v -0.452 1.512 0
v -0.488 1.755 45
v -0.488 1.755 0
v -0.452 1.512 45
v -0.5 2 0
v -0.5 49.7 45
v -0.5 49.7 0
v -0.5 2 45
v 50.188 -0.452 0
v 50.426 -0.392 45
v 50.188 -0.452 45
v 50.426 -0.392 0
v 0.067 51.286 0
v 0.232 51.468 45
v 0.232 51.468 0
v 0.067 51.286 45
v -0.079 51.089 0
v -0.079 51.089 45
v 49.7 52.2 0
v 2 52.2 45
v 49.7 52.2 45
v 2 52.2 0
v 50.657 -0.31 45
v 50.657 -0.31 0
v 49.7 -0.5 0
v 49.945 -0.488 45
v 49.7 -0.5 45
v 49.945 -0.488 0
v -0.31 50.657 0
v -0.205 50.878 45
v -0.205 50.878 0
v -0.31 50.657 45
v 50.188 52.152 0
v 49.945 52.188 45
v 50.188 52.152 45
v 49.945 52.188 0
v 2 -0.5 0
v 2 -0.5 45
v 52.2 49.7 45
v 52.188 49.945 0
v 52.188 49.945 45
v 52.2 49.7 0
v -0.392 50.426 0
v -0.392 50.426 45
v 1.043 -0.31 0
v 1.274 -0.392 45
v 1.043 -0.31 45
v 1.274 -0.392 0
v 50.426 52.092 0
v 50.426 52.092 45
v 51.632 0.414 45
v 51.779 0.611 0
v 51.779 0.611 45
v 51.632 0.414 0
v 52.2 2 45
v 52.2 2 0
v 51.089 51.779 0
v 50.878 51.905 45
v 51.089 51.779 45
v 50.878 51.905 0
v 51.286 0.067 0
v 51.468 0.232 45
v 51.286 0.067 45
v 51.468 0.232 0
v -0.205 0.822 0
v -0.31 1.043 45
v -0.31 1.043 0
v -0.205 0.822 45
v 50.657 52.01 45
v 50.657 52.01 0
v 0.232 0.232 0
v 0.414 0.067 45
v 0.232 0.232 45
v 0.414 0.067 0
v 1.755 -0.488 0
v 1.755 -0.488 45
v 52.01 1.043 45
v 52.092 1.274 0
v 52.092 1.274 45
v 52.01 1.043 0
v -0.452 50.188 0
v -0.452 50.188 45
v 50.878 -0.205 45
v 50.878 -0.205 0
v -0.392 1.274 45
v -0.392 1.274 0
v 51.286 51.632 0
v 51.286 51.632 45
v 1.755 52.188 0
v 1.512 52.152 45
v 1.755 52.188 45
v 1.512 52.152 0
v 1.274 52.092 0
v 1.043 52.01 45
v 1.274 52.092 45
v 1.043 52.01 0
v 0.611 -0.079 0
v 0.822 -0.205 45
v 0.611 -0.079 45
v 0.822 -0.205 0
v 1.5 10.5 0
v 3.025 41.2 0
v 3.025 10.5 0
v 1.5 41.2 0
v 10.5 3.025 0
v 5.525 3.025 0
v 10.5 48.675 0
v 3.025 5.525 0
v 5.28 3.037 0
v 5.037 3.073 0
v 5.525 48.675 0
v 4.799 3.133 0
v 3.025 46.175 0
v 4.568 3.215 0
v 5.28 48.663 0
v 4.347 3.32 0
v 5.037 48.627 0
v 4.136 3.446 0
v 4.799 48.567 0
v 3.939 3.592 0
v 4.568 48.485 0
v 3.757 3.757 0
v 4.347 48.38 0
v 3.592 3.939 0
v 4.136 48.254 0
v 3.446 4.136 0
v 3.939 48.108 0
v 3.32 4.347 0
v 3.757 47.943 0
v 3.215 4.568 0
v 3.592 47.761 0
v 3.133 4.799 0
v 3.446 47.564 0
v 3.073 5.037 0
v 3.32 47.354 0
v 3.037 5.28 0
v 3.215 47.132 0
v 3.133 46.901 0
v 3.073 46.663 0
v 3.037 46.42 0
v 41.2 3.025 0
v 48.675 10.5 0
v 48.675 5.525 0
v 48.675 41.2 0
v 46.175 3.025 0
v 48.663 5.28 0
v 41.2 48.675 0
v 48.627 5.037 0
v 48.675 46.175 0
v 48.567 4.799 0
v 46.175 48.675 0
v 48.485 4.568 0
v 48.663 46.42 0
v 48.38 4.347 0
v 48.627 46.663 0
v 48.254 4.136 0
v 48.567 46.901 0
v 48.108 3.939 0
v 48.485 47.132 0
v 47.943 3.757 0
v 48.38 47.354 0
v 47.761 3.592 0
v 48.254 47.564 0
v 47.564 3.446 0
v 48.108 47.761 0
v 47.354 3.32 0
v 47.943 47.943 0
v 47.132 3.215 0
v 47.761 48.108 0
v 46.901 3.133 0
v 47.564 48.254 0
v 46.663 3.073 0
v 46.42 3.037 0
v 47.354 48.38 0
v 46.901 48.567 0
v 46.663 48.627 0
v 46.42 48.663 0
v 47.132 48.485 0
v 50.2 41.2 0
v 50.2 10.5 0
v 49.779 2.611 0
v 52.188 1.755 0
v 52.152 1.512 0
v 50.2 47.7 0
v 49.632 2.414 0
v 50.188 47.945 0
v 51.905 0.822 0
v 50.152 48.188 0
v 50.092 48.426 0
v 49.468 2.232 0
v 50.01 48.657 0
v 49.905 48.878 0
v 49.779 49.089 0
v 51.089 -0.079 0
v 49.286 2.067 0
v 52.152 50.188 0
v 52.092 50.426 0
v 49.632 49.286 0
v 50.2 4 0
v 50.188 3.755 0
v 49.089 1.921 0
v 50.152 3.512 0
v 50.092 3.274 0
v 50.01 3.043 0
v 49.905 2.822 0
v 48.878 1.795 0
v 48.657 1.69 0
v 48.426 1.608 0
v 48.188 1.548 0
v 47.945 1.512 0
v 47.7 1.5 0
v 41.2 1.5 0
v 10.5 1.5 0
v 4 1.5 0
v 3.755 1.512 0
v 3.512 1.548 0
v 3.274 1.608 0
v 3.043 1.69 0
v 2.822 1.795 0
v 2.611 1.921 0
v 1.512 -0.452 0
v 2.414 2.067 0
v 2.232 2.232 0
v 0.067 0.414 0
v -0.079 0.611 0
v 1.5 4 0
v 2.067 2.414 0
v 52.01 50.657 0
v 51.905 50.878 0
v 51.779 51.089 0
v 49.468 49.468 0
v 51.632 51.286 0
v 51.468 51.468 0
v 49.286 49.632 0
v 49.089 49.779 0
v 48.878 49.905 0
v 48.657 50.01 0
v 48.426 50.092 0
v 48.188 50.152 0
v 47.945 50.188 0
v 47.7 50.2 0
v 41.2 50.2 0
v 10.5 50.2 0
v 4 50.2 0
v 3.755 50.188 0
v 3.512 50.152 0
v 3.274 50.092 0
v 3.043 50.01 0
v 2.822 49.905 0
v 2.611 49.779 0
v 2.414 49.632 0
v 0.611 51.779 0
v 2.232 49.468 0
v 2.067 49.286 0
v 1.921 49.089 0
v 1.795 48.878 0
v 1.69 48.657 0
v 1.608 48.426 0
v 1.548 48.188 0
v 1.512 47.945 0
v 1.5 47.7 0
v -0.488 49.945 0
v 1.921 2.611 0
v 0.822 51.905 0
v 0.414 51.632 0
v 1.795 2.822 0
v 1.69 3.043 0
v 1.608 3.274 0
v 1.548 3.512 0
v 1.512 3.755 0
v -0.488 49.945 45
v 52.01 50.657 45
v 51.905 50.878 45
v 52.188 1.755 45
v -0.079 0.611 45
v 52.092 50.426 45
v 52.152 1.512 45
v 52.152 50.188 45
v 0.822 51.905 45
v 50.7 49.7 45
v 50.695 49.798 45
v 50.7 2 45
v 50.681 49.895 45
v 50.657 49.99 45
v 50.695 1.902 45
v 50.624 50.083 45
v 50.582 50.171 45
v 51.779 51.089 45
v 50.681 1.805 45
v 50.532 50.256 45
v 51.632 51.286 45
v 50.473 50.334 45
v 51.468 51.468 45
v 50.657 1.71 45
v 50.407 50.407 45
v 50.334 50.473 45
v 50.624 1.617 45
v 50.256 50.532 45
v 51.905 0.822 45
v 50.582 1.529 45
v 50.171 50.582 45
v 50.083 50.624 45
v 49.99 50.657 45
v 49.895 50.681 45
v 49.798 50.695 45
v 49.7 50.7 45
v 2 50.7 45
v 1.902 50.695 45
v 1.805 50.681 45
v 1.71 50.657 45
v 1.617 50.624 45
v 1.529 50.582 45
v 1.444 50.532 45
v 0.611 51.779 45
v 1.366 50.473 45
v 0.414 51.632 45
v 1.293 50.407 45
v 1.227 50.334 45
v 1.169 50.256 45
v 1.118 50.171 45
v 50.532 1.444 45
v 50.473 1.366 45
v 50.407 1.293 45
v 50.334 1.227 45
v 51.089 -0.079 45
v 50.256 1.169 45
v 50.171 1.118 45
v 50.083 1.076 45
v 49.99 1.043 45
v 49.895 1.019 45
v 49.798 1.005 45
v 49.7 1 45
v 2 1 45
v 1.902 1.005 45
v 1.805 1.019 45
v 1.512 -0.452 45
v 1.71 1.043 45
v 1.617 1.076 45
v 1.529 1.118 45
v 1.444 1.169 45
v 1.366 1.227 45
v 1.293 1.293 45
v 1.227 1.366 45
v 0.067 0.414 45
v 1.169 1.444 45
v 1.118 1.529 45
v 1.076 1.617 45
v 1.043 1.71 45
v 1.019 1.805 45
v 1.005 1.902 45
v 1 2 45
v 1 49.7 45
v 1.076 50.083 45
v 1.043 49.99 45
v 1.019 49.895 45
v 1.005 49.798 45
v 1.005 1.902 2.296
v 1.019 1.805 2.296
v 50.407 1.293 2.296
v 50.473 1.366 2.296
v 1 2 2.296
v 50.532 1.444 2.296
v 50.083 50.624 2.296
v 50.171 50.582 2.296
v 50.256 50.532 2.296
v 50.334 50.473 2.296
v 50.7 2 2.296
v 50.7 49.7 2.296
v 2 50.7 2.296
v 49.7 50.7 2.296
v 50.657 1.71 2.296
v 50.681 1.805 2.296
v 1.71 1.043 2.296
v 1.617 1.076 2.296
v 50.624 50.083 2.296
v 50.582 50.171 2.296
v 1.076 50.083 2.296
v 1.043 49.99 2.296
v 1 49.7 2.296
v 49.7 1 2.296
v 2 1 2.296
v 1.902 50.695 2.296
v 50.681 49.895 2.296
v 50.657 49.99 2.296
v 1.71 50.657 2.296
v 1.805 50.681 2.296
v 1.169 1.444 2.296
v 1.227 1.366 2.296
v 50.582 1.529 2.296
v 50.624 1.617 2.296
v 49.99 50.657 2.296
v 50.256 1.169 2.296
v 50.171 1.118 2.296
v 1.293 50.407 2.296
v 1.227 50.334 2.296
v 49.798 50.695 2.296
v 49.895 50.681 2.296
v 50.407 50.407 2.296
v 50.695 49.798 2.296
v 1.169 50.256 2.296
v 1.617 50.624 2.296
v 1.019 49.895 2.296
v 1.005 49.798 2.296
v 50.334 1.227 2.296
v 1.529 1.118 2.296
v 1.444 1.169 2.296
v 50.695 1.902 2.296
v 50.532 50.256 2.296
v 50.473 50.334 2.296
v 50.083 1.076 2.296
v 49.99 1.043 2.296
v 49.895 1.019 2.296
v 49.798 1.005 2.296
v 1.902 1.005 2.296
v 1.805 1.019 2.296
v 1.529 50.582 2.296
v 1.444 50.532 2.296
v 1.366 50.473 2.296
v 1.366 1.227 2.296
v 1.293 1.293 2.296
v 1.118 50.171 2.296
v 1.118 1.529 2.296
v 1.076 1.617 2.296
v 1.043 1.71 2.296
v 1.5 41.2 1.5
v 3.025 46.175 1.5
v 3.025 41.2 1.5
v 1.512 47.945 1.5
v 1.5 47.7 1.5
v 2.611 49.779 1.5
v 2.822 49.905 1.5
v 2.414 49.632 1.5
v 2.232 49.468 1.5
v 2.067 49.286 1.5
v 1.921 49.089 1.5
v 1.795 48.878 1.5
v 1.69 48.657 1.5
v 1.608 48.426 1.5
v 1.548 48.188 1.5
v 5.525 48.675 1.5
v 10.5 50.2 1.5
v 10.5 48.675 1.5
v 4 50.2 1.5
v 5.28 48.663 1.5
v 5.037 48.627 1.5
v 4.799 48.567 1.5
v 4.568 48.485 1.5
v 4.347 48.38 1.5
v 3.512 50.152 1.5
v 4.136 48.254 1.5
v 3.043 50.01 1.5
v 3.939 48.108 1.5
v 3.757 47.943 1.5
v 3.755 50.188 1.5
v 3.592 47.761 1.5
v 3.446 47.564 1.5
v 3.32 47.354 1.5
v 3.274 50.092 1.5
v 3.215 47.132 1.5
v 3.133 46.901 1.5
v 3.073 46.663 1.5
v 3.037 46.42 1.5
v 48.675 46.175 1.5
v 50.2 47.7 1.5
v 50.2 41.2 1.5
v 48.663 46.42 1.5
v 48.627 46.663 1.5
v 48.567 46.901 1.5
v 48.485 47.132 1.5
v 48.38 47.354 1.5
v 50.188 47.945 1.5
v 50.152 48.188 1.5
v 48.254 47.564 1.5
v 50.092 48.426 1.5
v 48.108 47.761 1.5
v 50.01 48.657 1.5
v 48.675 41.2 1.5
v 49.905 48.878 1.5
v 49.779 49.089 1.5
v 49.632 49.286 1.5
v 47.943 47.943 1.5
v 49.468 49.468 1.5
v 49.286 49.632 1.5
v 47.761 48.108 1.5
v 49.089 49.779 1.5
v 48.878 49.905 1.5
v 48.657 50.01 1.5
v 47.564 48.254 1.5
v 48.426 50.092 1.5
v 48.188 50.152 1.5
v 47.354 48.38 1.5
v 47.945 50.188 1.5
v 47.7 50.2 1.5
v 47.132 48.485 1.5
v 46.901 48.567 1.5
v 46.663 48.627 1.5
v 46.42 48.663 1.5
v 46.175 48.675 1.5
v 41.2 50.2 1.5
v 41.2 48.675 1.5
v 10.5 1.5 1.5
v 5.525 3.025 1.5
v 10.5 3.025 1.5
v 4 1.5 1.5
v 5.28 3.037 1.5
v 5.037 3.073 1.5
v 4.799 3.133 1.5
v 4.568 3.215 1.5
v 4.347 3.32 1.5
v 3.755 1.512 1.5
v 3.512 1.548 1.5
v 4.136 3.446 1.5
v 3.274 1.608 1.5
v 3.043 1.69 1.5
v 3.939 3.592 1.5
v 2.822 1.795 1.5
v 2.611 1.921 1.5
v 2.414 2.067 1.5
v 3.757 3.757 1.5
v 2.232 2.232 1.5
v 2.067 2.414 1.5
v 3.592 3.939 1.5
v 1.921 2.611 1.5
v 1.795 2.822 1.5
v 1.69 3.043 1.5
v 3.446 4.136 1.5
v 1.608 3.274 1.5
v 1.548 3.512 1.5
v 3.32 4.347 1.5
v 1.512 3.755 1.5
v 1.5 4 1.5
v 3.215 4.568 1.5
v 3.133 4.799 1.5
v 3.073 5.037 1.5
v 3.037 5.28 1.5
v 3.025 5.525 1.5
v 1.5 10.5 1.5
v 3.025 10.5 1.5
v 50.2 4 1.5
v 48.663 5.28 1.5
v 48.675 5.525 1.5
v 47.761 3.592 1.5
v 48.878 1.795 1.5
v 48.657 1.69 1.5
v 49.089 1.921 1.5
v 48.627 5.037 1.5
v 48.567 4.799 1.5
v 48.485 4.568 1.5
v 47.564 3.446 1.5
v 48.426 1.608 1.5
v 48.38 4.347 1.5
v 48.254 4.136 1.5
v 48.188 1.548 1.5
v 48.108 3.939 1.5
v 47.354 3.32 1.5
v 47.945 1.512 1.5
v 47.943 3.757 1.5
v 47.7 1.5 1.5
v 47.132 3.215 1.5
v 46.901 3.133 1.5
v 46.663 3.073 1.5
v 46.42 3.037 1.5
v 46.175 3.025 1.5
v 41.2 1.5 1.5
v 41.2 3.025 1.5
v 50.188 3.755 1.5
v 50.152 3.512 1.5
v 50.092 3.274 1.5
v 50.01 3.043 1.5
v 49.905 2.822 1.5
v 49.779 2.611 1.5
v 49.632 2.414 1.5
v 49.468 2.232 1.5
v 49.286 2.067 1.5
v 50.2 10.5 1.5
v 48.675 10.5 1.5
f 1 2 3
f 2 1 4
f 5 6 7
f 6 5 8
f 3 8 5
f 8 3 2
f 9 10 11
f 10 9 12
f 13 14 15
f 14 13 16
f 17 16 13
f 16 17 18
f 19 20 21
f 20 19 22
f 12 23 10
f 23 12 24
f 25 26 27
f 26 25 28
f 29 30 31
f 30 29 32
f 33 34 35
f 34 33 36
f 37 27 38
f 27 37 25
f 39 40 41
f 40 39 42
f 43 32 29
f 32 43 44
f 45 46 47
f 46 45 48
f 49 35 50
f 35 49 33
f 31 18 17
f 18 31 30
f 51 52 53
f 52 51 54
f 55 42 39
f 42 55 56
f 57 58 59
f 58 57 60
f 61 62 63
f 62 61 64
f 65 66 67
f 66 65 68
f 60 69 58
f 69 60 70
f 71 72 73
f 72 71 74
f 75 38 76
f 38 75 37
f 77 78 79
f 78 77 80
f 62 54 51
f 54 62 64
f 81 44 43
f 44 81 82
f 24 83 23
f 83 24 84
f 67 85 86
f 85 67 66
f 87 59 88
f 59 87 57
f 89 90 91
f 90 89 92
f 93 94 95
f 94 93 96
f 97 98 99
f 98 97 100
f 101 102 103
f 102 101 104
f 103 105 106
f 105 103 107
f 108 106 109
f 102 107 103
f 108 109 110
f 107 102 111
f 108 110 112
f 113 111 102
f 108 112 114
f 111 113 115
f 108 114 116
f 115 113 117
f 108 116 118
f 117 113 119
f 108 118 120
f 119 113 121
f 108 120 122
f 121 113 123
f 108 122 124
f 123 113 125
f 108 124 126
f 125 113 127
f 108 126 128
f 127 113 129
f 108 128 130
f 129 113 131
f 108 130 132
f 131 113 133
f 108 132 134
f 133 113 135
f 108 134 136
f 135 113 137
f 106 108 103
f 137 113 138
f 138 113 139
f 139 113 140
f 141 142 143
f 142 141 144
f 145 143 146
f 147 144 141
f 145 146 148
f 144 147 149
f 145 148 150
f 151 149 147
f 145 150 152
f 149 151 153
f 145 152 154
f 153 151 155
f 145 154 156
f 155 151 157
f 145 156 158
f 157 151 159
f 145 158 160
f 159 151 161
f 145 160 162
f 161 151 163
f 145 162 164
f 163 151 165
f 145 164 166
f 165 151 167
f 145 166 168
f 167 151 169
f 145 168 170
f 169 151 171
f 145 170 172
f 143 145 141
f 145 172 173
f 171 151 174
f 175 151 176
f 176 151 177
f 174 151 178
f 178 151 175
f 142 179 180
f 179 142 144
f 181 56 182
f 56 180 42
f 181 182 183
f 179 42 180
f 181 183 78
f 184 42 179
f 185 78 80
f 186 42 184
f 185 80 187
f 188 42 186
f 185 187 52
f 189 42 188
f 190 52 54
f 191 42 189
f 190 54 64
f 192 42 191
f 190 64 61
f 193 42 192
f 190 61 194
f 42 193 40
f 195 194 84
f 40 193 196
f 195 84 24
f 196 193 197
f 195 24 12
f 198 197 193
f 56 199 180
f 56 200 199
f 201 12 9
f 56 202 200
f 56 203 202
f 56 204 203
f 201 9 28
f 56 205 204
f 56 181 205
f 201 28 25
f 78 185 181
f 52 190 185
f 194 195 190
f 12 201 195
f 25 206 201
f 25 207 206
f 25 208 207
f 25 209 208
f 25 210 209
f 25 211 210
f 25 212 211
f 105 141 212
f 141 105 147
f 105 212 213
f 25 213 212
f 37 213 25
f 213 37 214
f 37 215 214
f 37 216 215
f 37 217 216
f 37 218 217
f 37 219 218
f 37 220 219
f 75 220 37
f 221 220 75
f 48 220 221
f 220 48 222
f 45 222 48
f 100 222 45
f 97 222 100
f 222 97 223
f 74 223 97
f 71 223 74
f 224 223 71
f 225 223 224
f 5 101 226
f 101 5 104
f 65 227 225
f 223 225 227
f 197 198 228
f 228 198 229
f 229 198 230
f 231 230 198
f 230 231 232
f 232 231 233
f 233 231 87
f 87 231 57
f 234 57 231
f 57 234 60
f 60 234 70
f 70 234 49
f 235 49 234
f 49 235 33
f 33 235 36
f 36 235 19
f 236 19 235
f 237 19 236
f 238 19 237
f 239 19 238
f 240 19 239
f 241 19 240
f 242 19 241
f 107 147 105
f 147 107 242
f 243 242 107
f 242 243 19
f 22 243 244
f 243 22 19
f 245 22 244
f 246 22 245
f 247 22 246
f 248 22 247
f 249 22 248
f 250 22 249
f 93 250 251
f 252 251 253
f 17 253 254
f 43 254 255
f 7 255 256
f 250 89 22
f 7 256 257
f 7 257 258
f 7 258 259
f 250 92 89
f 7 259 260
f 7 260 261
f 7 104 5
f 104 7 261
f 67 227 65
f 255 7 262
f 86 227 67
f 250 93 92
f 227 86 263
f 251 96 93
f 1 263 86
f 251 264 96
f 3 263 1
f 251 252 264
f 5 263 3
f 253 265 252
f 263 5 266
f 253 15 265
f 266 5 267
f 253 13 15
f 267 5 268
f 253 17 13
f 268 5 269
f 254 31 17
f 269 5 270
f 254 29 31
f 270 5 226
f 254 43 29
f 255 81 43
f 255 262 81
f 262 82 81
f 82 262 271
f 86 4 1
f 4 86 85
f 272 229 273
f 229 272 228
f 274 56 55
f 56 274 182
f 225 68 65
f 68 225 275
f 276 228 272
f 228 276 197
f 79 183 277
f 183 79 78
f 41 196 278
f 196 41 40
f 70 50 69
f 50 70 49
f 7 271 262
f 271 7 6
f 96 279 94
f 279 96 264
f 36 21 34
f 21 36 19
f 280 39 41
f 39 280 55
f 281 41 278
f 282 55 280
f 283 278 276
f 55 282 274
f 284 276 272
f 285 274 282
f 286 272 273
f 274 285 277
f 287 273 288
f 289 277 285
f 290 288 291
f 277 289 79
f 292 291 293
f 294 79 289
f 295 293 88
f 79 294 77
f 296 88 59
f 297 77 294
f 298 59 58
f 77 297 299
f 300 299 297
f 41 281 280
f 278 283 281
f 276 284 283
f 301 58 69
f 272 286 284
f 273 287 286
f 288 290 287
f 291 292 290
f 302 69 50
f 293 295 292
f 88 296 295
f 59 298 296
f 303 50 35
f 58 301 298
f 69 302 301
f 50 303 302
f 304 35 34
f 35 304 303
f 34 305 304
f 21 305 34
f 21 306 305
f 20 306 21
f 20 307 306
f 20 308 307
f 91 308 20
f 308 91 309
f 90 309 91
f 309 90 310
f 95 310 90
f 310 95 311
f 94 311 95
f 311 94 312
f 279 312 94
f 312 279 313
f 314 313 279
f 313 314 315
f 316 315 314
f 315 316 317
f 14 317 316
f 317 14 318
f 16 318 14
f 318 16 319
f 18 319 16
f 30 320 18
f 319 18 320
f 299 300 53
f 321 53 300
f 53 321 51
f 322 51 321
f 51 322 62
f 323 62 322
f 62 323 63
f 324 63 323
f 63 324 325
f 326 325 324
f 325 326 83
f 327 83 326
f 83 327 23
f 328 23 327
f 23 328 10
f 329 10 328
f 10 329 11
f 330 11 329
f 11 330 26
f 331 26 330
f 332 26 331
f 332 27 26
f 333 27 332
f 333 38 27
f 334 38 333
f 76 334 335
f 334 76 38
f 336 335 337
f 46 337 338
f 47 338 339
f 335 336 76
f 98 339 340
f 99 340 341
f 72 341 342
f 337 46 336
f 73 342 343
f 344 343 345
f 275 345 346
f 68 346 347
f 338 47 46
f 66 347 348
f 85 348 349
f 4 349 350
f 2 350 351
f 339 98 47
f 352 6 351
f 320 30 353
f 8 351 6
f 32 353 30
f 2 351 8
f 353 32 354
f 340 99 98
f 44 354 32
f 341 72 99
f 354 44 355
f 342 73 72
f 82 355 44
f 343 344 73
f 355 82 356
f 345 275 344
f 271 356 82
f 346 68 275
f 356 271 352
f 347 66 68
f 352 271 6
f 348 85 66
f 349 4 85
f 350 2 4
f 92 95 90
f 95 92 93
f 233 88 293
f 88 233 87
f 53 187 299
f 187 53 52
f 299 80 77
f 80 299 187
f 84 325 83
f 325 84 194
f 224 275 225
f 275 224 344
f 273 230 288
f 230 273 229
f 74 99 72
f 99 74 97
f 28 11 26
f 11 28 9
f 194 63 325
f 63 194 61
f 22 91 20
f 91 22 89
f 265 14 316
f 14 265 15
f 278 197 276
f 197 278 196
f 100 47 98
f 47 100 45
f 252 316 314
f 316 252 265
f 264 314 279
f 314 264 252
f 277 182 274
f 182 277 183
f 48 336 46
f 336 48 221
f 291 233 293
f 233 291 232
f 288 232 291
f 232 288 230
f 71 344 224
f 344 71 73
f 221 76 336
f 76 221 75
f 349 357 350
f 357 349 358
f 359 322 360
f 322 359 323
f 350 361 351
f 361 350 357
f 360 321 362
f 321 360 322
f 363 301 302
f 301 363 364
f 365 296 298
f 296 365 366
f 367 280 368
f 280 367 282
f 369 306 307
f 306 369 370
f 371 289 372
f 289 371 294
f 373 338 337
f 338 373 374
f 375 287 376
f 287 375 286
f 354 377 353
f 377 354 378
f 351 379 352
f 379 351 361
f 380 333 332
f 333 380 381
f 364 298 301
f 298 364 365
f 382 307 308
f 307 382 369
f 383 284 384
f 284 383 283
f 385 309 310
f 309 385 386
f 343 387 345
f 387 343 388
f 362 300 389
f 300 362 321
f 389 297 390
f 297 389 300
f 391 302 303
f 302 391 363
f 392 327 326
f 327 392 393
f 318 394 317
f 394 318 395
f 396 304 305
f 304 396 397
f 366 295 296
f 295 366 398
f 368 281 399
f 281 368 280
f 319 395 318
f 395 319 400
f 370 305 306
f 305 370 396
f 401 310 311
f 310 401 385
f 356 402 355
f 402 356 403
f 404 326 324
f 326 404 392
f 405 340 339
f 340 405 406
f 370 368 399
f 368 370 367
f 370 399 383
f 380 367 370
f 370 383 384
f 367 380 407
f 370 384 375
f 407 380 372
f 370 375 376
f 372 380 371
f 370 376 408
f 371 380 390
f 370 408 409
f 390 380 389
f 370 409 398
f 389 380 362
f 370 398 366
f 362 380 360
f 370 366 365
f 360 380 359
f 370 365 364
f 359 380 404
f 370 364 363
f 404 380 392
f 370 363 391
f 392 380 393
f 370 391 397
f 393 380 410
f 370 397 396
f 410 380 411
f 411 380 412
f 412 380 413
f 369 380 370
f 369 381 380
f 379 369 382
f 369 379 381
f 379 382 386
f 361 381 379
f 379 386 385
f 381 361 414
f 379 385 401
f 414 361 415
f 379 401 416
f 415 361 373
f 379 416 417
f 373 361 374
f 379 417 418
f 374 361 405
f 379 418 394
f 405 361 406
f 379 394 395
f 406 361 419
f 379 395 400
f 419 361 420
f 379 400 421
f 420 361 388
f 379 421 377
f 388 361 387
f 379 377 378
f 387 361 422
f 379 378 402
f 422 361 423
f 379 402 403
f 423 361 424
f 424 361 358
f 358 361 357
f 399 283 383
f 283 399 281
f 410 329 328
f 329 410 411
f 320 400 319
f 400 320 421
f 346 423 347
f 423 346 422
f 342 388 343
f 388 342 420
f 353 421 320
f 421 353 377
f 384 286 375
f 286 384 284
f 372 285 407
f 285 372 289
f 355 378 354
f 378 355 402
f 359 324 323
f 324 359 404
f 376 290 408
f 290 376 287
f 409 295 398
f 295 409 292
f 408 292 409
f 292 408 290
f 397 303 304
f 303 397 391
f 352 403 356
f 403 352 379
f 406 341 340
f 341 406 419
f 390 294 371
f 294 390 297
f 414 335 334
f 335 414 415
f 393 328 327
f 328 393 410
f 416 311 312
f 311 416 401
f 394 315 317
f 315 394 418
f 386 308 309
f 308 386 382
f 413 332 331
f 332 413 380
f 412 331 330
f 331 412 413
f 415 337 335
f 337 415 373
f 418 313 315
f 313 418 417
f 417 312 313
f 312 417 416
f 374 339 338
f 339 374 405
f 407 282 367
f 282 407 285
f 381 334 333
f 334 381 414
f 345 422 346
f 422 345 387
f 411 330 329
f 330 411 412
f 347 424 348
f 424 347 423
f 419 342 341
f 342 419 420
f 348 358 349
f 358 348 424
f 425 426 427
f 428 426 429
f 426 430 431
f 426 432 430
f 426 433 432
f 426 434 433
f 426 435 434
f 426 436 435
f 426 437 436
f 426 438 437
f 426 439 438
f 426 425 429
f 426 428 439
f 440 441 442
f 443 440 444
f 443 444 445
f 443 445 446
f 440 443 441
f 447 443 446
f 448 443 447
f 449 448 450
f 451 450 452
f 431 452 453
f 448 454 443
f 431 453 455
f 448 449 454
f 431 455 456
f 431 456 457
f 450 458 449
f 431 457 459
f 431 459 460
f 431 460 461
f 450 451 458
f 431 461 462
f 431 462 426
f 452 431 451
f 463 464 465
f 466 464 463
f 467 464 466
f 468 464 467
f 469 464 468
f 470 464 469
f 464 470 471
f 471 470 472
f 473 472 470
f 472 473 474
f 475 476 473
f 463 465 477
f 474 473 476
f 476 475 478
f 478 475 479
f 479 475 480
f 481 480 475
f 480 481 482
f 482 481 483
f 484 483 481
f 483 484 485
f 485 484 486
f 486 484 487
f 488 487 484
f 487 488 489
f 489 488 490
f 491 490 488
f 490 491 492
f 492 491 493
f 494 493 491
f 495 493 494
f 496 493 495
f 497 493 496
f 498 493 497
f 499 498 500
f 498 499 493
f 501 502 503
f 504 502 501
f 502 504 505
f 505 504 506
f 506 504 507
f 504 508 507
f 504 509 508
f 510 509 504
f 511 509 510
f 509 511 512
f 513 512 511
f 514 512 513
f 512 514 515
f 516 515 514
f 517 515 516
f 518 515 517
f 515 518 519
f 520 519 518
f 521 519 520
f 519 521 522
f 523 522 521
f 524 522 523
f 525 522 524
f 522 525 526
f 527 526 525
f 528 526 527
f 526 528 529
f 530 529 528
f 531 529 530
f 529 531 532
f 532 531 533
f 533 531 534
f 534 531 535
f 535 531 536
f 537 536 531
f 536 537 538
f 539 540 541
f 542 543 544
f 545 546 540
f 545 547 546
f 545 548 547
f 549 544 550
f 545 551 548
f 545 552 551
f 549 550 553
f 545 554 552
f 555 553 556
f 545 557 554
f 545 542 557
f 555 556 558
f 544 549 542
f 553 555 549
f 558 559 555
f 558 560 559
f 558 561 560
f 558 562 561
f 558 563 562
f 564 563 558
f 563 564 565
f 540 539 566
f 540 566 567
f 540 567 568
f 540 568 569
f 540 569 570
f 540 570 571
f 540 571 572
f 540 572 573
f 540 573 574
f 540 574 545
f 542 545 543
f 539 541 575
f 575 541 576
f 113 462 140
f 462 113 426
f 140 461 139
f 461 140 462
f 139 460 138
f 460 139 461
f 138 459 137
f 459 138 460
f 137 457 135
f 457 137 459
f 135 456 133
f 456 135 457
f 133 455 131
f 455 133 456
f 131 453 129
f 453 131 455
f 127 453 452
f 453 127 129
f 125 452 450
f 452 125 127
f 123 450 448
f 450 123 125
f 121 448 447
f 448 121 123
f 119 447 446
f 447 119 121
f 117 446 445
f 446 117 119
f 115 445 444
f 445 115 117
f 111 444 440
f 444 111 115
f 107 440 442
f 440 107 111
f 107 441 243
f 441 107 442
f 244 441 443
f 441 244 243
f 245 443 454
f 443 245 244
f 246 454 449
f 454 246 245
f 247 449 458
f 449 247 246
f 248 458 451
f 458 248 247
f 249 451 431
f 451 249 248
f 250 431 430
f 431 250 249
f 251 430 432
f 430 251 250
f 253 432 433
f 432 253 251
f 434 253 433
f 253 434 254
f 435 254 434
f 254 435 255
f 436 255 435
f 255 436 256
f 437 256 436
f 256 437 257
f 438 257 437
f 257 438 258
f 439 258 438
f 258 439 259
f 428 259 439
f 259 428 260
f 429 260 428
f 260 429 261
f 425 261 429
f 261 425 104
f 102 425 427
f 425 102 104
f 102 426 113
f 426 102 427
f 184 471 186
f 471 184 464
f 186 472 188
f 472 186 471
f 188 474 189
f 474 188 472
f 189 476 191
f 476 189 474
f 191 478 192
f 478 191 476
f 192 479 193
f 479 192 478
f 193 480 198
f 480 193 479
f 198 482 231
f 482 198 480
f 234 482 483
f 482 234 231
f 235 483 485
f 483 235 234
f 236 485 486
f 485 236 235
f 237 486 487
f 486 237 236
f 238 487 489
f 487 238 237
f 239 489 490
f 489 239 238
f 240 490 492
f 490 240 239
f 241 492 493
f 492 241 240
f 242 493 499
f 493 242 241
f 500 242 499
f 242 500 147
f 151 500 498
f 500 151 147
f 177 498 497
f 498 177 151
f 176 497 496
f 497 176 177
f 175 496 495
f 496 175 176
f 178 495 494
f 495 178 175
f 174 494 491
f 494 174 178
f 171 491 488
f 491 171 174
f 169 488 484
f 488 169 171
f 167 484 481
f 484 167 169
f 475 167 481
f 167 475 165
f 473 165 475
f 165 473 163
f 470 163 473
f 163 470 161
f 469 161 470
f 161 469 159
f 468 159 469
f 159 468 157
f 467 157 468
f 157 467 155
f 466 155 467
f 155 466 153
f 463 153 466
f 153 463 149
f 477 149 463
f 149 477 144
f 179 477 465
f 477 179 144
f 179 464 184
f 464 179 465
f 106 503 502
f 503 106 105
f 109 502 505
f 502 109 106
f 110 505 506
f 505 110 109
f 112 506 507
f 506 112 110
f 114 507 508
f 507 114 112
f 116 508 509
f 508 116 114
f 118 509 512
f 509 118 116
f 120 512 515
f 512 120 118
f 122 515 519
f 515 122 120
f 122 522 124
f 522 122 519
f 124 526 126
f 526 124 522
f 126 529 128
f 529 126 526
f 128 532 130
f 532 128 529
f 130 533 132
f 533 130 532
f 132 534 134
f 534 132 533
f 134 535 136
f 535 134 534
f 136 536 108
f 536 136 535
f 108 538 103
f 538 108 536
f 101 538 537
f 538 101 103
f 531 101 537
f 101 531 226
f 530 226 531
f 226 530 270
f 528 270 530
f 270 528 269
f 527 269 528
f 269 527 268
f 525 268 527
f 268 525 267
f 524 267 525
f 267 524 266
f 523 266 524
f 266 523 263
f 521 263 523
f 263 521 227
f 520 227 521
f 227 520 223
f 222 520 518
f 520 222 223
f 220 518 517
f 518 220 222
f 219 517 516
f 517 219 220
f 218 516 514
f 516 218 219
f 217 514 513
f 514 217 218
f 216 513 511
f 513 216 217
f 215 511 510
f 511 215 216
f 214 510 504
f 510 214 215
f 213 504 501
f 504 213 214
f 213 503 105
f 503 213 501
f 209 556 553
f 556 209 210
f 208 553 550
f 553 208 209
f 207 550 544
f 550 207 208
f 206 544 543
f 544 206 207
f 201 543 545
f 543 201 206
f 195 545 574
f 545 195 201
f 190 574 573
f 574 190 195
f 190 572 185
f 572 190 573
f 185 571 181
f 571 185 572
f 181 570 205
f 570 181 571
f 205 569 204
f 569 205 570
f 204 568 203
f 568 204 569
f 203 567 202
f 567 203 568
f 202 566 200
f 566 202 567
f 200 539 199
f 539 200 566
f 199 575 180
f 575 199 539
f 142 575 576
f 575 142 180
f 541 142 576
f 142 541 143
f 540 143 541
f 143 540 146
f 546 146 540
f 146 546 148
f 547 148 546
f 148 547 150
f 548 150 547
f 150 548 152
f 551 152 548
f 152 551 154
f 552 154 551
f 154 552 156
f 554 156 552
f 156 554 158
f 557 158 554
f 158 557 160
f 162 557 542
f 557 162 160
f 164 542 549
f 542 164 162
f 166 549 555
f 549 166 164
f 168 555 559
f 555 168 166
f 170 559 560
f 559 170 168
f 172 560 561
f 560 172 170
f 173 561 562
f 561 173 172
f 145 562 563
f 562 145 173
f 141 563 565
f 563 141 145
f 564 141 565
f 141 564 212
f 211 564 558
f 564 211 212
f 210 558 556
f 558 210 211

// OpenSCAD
module Container(){
  difference(){
    translate([25.85, 25.85, 0])color("red")difference(){
          translate([-26.35, -26.35, 0])color("purple")union()linear_extrude(height=45)translate([2.5, 2.5, 0])hull(){
                      circle(d=5,$fn=64);
                      translate([47.7, 0, 0])circle(d=5,$fn=64);
                      translate([0, 47.7, 0])circle(d=5,$fn=64);
                      translate([47.7, 47.7, 0])circle(d=5,$fn=64);
                    }

          translate([-24.85, -24.85, 2.296])union()linear_extrude(height=45.008)translate([1, 1, 0])hull(){
                    circle(d=2,$fn=64);
                    translate([47.7, 0, 0])circle(d=2,$fn=64);
                    translate([0, 47.7, 0])circle(d=2,$fn=64);
                    translate([47.7, 47.7, 0])circle(d=2,$fn=64);
                  }

        }

    translate([25.85, 25.85, 0])union(){
        translate([0, 0, -1])%linear_extrude(height=1)union(){
              translate([-25.85, -25.85, 0])square([51.7, 51.7]);
              translate([-25.85, -25.85, 0])square([51.7, 51.7]);
            }

        translate([0, 0, 45.002])%linear_extrude(height=1.004)union(){
              translate([-25.85, -25.85, 0])square([51.7, 51.7]);
              translate([-25.85, -25.85, 0])square([51.7, 51.7]);
            }

        color("red")linear_extrude(height=1.5)union(){
              difference(){
                translate([-24.35, -24.35, 0])union()translate([2.5, 2.5, 0])hull(){
                        circle(d=5,$fn=64);
                        translate([43.7, 0, 0])circle(d=5,$fn=64);
                        translate([0, 43.7, 0])circle(d=5,$fn=64);
                        translate([43.7, 43.7, 0])circle(d=5,$fn=64);
                      }

                translate([-22.825, -22.825, 0])union()translate([2.5, 2.5, 0])hull(){
                        circle(d=5,$fn=64);
                        translate([40.65, 0, 0])circle(d=5,$fn=64);
                        translate([0, 40.65, 0])circle(d=5,$fn=64);
                        translate([40.65, 40.65, 0])circle(d=5,$fn=64);
                      }

                translate([-15.35, -25.85, 0])square([30.700000000000003, 51.7]);
                translate([-25.85, -15.35, 0])square([51.7, 30.700000000000003]);
              }

              difference(){
                translate([-24.35, -24.35, 0])union()translate([2.5, 2.5, 0])hull(){
                        circle(d=5,$fn=64);
                        translate([43.7, 0, 0])circle(d=5,$fn=64);
                        translate([0, 43.7, 0])circle(d=5,$fn=64);
                        translate([43.7, 43.7, 0])circle(d=5,$fn=64);
                      }

                translate([-22.825, -22.825, 0])union()translate([2.5, 2.5, 0])hull(){
                        circle(d=5,$fn=64);
                        translate([40.65, 0, 0])circle(d=5,$fn=64);
                        translate([0, 40.65, 0])circle(d=5,$fn=64);
                        translate([40.65, 40.65, 0])circle(d=5,$fn=64);
                      }

                translate([-15.35, -25.85, 0])square([30.700000000000003, 51.7]);
                translate([-25.85, -15.35, 0])square([51.7, 30.700000000000003]);
              }

            }

        translate([0, 0, 41.5])color("blue")linear_extrude(height=3.5)union(){
                translate([-21.6, 23.25, 0])square([43.2, 1.6]);
                translate([-21.6, -24.85, 0])square([43.2, 1.6]);
                translate([23.25, -21.6, 0])square([1.6, 43.2]);
                translate([-24.85, -21.6, 0])square([1.6, 43.2]);
                union(){
                  translate([-21.6, 23.25, 0])square([43.2, 1.6]);
                  translate([-21.6, -24.85, 0])square([43.2, 1.6]);
                  translate([23.25, -21.6, 0])square([1.6, 43.2]);
                  translate([-24.85, -21.6, 0])square([1.6, 43.2]);
                }

              }

      }

  }
}
$fn=64;
Container();
